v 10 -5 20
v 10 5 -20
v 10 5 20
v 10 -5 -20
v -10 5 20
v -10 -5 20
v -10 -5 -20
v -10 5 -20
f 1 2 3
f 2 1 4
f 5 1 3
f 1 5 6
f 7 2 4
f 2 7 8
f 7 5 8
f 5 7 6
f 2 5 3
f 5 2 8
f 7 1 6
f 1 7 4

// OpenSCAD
// Define the dimensions of the rectangular block
block_width = 20;  // Width of the block
block_height = 40; // Height of the block
block_depth = 10;  // Depth of the block

// Function to create a rectangular block
module rectangular_block() {
    cube([block_width, block_depth, block_height], center = true);
}

// Generate six identical rectangular blocks
rectangular_block(); // Block 1
rectangular_block(); // Block 2
rectangular_block(); // Block 3
rectangular_block(); // Block 4
rectangular_block(); // Block 5
rectangular_block(); // Block 6
